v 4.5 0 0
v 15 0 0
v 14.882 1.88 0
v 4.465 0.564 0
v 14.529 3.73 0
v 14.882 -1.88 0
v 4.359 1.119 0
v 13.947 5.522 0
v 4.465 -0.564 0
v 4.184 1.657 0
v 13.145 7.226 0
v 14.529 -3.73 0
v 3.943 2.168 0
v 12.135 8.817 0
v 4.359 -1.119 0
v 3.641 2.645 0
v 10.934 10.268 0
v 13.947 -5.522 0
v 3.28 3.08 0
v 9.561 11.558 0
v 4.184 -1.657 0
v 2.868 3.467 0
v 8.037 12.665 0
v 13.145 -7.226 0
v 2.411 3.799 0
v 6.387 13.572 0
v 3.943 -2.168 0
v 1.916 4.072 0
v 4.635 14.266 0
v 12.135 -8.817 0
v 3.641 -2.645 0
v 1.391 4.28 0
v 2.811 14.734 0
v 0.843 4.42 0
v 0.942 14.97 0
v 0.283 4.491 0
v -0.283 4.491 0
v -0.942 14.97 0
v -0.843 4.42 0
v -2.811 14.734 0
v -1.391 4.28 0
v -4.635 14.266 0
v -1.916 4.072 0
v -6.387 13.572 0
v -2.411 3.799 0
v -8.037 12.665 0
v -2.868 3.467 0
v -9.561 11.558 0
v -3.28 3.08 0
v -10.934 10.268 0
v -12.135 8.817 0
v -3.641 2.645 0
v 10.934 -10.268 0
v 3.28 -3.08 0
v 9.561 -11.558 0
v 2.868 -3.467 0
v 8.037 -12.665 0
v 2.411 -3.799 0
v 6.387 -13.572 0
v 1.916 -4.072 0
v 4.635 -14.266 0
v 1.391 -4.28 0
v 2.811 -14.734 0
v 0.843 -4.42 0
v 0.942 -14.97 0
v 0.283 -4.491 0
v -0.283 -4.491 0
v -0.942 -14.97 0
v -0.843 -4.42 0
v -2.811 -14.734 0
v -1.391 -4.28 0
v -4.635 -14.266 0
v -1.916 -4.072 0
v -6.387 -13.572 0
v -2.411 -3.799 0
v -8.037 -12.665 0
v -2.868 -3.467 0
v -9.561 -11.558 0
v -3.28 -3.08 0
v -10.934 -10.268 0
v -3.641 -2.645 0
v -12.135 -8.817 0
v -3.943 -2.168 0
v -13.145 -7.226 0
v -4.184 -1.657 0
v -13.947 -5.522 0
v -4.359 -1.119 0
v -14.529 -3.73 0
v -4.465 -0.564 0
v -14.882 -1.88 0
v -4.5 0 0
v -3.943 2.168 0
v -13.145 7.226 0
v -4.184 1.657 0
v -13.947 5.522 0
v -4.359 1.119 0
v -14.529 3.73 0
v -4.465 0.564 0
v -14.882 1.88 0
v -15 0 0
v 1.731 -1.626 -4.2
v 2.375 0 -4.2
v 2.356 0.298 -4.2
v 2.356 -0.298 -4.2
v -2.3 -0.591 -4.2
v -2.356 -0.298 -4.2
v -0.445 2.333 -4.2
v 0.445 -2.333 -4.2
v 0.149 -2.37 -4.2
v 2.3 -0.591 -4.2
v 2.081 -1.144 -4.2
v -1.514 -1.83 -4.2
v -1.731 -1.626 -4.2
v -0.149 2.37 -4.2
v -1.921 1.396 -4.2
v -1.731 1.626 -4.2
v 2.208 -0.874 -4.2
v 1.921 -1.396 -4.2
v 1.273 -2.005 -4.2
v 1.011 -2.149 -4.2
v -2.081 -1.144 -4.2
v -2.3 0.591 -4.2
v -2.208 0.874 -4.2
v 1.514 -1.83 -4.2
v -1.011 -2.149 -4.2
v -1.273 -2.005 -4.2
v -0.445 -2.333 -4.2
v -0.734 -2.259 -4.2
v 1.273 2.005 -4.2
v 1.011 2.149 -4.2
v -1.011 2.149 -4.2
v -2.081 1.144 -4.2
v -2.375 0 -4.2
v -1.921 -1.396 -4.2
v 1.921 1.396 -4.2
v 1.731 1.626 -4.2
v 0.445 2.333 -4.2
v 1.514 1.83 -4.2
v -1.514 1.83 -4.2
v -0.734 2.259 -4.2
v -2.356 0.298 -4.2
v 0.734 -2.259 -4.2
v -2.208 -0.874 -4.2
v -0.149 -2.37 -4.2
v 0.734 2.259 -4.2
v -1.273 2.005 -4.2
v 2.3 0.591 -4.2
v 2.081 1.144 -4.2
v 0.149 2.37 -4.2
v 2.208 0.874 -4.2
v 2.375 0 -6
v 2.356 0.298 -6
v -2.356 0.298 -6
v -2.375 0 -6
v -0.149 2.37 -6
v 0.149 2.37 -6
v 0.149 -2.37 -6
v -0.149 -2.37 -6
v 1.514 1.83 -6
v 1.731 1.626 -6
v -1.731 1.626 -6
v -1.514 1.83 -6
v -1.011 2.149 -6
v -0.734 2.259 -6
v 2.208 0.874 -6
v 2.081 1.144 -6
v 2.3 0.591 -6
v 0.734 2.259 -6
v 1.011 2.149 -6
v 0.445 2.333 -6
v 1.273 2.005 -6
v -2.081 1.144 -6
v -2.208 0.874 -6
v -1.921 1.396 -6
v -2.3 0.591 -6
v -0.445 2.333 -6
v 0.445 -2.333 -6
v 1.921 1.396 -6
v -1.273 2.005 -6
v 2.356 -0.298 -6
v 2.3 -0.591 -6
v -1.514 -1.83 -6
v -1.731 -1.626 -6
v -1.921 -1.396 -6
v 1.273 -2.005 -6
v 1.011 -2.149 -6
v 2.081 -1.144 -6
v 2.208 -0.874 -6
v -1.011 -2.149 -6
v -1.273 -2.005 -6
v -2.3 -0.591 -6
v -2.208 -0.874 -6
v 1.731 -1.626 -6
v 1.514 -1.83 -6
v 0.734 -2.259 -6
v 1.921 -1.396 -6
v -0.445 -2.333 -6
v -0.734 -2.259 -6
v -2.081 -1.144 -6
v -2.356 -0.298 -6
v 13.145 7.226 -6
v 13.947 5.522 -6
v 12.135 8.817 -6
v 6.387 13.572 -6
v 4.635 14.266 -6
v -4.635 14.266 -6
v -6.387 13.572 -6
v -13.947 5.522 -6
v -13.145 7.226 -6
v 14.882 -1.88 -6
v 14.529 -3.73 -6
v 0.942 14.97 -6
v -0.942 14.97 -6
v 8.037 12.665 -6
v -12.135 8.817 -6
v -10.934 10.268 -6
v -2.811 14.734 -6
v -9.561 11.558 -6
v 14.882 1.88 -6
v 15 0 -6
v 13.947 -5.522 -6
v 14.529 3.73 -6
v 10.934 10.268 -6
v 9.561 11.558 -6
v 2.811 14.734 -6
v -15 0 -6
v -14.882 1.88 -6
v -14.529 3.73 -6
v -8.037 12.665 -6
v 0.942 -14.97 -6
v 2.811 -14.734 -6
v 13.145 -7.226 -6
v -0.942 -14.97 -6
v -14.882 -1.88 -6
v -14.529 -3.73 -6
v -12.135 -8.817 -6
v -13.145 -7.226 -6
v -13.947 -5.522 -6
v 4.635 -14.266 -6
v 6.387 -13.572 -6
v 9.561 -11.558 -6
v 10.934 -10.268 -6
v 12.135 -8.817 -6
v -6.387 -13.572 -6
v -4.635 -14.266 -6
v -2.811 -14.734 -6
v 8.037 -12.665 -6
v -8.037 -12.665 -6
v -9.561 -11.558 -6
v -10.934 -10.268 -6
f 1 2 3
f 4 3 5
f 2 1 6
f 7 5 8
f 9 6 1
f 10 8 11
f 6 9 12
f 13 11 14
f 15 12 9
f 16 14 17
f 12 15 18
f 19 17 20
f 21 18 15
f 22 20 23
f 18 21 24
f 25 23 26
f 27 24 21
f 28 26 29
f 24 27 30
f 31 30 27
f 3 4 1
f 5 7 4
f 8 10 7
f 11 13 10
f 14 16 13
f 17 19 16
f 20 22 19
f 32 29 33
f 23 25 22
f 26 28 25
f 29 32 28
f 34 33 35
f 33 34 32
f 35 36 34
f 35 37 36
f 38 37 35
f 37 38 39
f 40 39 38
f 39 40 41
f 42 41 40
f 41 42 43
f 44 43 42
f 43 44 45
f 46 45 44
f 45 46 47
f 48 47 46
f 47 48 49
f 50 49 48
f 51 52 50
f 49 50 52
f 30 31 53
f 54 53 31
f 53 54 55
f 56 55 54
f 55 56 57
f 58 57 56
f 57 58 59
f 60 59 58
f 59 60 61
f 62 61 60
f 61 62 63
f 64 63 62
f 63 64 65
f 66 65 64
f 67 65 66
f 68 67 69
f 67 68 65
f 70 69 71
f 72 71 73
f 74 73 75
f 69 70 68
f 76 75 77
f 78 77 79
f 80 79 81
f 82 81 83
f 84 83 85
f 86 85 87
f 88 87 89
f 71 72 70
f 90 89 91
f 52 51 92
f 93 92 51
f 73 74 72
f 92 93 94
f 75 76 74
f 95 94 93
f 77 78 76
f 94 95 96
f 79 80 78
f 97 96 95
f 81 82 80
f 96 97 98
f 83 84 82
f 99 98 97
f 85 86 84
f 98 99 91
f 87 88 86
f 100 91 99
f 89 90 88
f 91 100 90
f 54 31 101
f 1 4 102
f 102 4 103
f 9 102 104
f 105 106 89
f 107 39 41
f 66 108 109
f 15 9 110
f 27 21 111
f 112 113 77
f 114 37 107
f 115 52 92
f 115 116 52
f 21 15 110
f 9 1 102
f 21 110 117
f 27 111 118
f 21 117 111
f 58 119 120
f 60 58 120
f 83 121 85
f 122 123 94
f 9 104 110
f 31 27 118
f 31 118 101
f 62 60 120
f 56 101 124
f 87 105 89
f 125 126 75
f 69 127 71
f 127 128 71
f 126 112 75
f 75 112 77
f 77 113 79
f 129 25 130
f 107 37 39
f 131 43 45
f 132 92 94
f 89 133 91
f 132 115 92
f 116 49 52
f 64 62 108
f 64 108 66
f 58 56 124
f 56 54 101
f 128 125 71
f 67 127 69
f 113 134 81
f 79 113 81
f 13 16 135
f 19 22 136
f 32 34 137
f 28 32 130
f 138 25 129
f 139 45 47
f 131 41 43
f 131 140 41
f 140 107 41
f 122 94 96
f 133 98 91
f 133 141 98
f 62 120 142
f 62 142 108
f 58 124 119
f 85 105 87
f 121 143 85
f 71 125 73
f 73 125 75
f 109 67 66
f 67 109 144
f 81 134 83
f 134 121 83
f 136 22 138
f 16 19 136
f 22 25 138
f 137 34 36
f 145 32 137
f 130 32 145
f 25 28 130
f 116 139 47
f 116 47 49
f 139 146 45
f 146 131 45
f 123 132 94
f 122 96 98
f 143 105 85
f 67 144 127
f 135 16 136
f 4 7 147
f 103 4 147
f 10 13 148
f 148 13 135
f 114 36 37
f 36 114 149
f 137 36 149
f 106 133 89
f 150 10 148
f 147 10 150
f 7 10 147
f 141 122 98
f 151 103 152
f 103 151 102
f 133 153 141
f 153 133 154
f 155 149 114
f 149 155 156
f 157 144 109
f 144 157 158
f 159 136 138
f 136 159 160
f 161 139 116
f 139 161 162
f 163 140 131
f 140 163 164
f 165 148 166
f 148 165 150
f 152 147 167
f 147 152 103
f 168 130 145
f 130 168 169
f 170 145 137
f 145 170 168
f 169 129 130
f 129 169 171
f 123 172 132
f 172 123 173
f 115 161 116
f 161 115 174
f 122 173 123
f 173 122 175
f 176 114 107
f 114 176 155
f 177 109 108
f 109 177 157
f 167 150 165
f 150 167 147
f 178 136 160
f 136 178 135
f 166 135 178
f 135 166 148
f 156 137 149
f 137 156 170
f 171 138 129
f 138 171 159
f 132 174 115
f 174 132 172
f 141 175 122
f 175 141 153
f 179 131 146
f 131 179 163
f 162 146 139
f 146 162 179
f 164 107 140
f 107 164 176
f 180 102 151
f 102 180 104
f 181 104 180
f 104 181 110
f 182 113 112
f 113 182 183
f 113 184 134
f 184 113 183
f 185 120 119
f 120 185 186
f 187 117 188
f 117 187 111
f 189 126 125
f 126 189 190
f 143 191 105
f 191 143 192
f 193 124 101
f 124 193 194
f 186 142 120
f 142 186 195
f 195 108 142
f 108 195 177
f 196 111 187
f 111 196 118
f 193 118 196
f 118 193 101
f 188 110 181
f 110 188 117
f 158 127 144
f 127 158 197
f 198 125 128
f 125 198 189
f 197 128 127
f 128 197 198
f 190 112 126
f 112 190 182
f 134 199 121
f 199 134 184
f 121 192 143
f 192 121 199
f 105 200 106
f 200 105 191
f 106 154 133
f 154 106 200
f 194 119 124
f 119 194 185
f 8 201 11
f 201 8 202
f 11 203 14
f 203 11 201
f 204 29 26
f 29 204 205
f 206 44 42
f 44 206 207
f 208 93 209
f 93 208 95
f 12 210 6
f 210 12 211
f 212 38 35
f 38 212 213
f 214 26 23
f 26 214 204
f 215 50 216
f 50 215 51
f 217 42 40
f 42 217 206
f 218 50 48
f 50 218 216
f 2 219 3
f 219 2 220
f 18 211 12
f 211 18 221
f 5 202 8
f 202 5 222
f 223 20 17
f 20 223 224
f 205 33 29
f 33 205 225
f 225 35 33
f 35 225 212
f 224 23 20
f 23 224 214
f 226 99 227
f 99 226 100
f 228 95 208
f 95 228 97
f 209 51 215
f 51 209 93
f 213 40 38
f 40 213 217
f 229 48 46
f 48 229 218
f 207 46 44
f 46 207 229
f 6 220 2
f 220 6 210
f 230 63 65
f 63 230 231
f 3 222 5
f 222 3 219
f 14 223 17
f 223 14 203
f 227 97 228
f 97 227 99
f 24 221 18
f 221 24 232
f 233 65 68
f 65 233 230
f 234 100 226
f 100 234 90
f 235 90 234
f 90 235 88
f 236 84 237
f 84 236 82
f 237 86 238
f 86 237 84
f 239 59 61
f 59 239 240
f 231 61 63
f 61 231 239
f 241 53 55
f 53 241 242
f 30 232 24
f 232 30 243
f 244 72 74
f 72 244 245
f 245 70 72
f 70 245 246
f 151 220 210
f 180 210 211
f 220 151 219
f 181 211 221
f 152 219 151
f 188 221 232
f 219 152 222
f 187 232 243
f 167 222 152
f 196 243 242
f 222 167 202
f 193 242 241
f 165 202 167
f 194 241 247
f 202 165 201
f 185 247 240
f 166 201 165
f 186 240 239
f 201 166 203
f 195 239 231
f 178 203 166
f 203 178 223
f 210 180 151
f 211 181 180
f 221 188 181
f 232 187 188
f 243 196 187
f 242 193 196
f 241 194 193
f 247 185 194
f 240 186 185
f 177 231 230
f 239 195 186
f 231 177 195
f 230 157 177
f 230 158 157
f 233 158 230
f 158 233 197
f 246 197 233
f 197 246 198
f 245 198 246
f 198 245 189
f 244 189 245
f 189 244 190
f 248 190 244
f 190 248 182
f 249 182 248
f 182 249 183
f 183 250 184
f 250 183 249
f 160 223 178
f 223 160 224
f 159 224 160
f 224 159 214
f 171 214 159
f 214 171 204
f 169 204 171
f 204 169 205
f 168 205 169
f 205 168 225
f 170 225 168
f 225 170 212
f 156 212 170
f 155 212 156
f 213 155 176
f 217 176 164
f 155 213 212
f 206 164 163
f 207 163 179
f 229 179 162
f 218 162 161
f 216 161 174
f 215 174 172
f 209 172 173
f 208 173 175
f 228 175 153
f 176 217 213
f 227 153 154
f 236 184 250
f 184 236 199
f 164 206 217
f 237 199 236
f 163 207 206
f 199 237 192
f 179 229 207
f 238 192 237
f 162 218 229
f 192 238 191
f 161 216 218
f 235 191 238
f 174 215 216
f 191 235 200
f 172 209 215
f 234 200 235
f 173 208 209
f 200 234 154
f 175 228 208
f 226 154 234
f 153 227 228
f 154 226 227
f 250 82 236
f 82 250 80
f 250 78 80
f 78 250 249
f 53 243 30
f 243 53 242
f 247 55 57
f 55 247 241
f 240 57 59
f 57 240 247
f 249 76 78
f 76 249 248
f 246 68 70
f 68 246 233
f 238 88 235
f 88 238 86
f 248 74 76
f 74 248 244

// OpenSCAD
$fn = 50;


difference() {
	union() {
		translate(v = [0, 0, -6.0000000000]) {
			cylinder(h = 6, r = 15.0000000000);
		}
	}
	union() {
		translate(v = [0, 0, 0]) {
			rotate(a = [0, 0, 0]) {
				difference() {
					union() {
						translate(v = [0, 0, -9.0000000000]) {
							cylinder(h = 9, r = 2.2500000000);
						}
						translate(v = [0, 0, -4.2000000000]) {
							cylinder(h = 4.2000000000, r1 = 2.3750000000, r2 = 4.5000000000);
						}
						translate(v = [0, 0, -9.0000000000]) {
							cylinder(h = 9, r = 2.3750000000);
						}
						translate(v = [0, 0, -9.0000000000]) {
							cylinder(h = 9, r = 2.2500000000);
						}
					}
					union();
				}
			}
		}
	}
}
